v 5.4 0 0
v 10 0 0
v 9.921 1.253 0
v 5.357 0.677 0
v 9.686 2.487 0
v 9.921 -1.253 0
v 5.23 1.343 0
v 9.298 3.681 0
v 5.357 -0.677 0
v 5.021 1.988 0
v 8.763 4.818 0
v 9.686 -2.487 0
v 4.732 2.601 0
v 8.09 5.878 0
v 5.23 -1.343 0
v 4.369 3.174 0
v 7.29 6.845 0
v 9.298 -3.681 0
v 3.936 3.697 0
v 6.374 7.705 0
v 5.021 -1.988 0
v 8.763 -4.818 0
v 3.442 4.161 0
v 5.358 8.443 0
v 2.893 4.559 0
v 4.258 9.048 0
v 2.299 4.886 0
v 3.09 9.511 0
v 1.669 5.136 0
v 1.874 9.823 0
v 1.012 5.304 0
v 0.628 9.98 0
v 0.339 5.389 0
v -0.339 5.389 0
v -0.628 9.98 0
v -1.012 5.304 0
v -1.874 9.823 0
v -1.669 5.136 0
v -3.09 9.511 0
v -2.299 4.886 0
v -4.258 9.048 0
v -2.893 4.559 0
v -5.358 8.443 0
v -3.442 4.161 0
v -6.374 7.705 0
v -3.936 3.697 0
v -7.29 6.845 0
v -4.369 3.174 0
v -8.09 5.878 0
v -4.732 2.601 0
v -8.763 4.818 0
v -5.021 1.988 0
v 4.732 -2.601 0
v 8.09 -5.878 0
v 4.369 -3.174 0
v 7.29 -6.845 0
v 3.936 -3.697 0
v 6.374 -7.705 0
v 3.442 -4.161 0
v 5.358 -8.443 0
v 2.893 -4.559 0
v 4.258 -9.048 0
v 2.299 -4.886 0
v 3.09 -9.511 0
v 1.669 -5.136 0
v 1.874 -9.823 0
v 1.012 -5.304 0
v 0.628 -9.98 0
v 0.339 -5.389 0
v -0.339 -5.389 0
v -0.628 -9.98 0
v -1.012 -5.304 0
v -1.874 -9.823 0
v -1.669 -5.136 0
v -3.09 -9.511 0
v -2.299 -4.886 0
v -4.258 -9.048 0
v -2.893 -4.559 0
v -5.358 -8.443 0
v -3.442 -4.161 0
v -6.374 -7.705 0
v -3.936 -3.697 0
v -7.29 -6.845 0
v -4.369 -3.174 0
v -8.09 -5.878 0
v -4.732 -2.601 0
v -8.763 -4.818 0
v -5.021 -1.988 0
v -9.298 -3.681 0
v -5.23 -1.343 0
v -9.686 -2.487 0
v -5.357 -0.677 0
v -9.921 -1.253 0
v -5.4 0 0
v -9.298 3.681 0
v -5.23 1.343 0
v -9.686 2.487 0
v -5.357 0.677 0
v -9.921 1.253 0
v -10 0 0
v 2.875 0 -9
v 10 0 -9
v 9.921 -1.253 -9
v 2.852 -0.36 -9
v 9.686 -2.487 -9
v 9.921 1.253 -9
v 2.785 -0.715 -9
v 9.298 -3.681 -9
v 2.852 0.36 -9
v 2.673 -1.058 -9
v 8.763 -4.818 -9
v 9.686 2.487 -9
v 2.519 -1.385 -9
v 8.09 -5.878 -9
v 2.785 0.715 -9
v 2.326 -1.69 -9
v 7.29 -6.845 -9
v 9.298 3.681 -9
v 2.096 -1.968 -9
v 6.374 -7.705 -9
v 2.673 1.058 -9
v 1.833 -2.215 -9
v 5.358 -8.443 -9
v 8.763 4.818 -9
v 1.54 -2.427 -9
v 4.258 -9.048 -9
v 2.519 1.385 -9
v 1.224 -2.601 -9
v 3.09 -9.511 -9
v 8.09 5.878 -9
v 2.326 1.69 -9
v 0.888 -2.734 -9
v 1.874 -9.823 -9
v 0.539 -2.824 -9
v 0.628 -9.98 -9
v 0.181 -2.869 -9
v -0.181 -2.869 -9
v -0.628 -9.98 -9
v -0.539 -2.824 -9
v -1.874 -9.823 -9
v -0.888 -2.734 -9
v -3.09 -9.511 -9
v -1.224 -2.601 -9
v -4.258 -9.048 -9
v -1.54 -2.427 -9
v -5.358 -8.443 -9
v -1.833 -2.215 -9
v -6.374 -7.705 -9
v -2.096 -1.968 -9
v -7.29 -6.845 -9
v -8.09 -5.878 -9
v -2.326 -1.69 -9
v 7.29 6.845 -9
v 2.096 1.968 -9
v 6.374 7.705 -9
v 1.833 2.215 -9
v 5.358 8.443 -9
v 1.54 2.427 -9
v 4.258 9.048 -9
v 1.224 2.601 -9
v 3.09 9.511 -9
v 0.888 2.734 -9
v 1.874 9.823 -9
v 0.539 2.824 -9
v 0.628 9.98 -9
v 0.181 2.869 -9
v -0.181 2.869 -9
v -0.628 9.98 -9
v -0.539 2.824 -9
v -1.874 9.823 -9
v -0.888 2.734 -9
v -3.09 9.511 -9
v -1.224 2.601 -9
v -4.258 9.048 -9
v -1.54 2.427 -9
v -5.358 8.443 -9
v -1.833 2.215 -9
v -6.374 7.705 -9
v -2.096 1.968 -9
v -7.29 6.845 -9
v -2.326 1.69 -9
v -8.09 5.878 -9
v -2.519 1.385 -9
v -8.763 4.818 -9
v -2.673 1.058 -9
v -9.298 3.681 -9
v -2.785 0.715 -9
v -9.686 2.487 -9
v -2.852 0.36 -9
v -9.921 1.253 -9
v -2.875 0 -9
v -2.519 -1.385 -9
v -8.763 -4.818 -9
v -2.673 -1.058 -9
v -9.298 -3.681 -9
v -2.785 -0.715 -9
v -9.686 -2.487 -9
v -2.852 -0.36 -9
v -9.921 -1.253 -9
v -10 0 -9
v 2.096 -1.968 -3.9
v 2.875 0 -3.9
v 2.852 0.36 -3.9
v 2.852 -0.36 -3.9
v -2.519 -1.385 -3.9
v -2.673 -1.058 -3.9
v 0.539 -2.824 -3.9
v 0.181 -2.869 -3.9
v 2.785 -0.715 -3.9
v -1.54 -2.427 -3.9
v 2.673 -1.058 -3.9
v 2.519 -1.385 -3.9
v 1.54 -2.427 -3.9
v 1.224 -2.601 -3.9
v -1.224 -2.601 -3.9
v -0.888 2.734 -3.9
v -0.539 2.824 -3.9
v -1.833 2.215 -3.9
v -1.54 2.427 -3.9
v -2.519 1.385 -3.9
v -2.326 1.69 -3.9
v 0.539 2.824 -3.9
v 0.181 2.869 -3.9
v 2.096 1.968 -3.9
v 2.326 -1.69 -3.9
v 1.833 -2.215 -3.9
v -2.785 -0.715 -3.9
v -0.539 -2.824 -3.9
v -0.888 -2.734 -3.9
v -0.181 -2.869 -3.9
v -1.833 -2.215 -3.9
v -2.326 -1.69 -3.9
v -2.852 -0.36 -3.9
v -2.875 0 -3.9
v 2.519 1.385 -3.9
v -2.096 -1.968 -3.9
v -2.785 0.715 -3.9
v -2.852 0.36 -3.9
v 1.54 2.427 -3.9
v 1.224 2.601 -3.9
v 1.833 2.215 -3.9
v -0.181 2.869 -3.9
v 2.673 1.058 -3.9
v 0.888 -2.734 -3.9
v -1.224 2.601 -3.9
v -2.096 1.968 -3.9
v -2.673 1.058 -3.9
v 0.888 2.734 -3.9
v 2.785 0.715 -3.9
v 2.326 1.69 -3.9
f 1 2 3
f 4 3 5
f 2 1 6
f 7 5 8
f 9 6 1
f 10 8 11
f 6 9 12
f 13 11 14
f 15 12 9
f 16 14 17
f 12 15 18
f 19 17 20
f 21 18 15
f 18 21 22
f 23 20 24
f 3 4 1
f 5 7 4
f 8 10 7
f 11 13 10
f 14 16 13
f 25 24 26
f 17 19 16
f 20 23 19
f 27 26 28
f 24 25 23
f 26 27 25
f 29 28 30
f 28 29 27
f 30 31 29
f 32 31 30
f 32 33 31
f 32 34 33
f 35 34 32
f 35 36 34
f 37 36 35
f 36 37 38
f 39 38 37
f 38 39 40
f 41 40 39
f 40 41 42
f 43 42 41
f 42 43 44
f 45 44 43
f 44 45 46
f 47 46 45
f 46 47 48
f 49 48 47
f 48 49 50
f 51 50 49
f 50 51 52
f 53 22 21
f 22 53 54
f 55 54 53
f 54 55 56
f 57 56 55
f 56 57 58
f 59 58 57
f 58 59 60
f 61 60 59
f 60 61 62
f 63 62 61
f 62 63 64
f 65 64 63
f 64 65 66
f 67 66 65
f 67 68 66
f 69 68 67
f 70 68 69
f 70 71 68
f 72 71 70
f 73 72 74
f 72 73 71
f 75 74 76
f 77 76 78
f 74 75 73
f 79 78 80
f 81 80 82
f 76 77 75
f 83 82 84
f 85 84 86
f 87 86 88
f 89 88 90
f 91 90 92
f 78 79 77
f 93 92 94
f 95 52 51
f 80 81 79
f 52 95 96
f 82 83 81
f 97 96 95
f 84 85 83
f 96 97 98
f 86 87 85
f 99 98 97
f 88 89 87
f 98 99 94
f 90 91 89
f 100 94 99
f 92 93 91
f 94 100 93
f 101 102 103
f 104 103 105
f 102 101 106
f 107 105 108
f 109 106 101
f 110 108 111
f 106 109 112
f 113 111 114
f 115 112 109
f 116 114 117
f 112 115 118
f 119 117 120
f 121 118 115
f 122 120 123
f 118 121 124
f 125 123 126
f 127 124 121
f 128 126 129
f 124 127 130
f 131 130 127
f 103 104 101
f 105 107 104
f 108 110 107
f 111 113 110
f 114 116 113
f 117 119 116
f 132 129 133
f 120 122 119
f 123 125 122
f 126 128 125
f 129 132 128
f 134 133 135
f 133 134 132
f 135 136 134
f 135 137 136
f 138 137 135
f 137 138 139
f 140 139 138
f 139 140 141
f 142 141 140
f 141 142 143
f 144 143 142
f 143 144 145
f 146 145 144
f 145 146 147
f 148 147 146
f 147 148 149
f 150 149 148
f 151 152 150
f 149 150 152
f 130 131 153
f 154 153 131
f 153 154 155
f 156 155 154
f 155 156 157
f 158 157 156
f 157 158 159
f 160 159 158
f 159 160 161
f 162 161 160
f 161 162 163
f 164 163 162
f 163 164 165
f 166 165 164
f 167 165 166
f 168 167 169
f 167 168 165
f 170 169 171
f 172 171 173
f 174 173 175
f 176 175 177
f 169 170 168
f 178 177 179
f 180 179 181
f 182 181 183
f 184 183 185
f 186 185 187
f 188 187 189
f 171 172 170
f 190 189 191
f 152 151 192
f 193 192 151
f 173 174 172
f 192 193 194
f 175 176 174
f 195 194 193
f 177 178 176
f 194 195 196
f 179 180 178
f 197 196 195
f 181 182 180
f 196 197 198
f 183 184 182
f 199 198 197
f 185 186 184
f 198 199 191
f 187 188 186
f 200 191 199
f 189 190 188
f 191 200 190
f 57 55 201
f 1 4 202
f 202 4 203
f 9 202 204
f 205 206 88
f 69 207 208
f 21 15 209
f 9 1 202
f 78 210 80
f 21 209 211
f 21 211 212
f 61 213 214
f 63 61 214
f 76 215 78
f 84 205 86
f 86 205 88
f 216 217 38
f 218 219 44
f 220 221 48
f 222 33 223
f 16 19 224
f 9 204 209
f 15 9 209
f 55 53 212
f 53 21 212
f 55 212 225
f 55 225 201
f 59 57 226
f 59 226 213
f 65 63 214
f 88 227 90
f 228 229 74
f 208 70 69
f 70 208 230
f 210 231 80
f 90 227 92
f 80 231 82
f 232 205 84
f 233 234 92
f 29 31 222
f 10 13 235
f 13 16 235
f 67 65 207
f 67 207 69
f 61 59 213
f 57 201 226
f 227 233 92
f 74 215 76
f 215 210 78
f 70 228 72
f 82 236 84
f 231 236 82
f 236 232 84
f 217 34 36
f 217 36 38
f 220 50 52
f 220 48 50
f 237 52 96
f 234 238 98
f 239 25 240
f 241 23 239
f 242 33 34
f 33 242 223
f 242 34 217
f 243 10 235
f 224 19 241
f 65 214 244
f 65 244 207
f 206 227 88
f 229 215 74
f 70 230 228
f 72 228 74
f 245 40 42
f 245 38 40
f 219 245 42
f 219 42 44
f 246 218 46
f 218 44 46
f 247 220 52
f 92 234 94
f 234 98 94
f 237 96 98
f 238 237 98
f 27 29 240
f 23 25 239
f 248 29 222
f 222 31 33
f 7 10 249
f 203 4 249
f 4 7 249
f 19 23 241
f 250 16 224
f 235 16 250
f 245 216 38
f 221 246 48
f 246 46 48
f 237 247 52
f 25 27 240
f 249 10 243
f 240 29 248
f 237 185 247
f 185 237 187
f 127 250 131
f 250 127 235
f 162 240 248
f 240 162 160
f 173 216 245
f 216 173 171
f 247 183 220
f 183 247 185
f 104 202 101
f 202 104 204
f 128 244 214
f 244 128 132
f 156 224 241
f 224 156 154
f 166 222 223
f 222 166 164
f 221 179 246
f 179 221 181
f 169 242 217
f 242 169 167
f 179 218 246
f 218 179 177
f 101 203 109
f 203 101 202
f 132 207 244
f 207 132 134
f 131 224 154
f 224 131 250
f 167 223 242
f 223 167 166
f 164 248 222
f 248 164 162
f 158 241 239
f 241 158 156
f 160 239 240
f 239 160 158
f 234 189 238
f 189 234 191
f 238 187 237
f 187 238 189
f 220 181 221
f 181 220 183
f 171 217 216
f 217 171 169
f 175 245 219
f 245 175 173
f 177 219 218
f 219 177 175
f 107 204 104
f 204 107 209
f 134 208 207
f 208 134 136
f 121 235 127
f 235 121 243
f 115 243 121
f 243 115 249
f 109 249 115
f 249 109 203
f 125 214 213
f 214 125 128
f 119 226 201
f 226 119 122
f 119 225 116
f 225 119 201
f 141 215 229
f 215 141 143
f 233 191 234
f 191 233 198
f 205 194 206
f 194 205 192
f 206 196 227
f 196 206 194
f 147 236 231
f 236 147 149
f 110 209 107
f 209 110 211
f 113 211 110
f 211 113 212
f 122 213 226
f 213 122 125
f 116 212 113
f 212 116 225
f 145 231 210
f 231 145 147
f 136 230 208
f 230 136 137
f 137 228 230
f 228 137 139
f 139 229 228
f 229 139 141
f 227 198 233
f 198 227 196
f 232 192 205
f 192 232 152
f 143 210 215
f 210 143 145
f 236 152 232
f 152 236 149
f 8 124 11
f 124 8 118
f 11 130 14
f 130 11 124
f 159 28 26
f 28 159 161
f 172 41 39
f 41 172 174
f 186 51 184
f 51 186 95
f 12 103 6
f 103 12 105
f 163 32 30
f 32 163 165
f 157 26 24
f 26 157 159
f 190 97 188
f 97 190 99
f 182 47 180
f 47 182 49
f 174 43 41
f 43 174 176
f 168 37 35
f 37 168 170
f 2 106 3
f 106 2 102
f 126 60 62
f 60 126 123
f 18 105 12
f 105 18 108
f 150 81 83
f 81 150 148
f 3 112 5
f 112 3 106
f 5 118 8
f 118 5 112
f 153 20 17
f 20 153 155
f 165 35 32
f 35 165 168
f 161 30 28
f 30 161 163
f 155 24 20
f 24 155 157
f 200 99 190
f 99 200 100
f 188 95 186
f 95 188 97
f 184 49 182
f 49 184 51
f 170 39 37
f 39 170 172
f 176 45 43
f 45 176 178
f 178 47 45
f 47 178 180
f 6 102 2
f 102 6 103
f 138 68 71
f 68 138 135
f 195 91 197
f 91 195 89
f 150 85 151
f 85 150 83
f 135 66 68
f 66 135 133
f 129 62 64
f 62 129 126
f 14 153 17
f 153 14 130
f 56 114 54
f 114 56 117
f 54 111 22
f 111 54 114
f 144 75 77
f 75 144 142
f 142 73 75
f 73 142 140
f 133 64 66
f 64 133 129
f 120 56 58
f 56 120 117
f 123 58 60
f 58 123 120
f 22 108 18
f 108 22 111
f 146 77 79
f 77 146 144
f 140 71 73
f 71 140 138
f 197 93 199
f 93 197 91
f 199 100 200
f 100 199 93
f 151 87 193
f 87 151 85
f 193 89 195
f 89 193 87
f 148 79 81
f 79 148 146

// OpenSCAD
$fn = 50;


difference() {
	union() {
		translate(v = [0, 0, -9.0000000000]) {
			cylinder(h = 9, r = 10.0000000000);
		}
		cylinder(h = 0, r = 16.0000000000);
	}
	union() {
		translate(v = [0, 0, 0]) {
			rotate(a = [0, 0, 0]) {
				difference() {
					union() {
						#translate(v = [0, 0, -9.0000000000]) {
							cylinder(h = 9, r = 2.6000000000);
						}
						#translate(v = [0, 0, -3.9000000000]) {
							cylinder(h = 3.9000000000, r = 10.0000000000, r1 = 2.8750000000, r2 = 5.4000000000);
						}
						#translate(v = [0, 0, -9.0000000000]) {
							cylinder(h = 9, r = 2.8750000000);
						}
						#translate(v = [0, 0, -9.0000000000]) {
							cylinder(h = 9, r = 2.6000000000);
						}
					}
					union();
				}
			}
		}
	}
}
